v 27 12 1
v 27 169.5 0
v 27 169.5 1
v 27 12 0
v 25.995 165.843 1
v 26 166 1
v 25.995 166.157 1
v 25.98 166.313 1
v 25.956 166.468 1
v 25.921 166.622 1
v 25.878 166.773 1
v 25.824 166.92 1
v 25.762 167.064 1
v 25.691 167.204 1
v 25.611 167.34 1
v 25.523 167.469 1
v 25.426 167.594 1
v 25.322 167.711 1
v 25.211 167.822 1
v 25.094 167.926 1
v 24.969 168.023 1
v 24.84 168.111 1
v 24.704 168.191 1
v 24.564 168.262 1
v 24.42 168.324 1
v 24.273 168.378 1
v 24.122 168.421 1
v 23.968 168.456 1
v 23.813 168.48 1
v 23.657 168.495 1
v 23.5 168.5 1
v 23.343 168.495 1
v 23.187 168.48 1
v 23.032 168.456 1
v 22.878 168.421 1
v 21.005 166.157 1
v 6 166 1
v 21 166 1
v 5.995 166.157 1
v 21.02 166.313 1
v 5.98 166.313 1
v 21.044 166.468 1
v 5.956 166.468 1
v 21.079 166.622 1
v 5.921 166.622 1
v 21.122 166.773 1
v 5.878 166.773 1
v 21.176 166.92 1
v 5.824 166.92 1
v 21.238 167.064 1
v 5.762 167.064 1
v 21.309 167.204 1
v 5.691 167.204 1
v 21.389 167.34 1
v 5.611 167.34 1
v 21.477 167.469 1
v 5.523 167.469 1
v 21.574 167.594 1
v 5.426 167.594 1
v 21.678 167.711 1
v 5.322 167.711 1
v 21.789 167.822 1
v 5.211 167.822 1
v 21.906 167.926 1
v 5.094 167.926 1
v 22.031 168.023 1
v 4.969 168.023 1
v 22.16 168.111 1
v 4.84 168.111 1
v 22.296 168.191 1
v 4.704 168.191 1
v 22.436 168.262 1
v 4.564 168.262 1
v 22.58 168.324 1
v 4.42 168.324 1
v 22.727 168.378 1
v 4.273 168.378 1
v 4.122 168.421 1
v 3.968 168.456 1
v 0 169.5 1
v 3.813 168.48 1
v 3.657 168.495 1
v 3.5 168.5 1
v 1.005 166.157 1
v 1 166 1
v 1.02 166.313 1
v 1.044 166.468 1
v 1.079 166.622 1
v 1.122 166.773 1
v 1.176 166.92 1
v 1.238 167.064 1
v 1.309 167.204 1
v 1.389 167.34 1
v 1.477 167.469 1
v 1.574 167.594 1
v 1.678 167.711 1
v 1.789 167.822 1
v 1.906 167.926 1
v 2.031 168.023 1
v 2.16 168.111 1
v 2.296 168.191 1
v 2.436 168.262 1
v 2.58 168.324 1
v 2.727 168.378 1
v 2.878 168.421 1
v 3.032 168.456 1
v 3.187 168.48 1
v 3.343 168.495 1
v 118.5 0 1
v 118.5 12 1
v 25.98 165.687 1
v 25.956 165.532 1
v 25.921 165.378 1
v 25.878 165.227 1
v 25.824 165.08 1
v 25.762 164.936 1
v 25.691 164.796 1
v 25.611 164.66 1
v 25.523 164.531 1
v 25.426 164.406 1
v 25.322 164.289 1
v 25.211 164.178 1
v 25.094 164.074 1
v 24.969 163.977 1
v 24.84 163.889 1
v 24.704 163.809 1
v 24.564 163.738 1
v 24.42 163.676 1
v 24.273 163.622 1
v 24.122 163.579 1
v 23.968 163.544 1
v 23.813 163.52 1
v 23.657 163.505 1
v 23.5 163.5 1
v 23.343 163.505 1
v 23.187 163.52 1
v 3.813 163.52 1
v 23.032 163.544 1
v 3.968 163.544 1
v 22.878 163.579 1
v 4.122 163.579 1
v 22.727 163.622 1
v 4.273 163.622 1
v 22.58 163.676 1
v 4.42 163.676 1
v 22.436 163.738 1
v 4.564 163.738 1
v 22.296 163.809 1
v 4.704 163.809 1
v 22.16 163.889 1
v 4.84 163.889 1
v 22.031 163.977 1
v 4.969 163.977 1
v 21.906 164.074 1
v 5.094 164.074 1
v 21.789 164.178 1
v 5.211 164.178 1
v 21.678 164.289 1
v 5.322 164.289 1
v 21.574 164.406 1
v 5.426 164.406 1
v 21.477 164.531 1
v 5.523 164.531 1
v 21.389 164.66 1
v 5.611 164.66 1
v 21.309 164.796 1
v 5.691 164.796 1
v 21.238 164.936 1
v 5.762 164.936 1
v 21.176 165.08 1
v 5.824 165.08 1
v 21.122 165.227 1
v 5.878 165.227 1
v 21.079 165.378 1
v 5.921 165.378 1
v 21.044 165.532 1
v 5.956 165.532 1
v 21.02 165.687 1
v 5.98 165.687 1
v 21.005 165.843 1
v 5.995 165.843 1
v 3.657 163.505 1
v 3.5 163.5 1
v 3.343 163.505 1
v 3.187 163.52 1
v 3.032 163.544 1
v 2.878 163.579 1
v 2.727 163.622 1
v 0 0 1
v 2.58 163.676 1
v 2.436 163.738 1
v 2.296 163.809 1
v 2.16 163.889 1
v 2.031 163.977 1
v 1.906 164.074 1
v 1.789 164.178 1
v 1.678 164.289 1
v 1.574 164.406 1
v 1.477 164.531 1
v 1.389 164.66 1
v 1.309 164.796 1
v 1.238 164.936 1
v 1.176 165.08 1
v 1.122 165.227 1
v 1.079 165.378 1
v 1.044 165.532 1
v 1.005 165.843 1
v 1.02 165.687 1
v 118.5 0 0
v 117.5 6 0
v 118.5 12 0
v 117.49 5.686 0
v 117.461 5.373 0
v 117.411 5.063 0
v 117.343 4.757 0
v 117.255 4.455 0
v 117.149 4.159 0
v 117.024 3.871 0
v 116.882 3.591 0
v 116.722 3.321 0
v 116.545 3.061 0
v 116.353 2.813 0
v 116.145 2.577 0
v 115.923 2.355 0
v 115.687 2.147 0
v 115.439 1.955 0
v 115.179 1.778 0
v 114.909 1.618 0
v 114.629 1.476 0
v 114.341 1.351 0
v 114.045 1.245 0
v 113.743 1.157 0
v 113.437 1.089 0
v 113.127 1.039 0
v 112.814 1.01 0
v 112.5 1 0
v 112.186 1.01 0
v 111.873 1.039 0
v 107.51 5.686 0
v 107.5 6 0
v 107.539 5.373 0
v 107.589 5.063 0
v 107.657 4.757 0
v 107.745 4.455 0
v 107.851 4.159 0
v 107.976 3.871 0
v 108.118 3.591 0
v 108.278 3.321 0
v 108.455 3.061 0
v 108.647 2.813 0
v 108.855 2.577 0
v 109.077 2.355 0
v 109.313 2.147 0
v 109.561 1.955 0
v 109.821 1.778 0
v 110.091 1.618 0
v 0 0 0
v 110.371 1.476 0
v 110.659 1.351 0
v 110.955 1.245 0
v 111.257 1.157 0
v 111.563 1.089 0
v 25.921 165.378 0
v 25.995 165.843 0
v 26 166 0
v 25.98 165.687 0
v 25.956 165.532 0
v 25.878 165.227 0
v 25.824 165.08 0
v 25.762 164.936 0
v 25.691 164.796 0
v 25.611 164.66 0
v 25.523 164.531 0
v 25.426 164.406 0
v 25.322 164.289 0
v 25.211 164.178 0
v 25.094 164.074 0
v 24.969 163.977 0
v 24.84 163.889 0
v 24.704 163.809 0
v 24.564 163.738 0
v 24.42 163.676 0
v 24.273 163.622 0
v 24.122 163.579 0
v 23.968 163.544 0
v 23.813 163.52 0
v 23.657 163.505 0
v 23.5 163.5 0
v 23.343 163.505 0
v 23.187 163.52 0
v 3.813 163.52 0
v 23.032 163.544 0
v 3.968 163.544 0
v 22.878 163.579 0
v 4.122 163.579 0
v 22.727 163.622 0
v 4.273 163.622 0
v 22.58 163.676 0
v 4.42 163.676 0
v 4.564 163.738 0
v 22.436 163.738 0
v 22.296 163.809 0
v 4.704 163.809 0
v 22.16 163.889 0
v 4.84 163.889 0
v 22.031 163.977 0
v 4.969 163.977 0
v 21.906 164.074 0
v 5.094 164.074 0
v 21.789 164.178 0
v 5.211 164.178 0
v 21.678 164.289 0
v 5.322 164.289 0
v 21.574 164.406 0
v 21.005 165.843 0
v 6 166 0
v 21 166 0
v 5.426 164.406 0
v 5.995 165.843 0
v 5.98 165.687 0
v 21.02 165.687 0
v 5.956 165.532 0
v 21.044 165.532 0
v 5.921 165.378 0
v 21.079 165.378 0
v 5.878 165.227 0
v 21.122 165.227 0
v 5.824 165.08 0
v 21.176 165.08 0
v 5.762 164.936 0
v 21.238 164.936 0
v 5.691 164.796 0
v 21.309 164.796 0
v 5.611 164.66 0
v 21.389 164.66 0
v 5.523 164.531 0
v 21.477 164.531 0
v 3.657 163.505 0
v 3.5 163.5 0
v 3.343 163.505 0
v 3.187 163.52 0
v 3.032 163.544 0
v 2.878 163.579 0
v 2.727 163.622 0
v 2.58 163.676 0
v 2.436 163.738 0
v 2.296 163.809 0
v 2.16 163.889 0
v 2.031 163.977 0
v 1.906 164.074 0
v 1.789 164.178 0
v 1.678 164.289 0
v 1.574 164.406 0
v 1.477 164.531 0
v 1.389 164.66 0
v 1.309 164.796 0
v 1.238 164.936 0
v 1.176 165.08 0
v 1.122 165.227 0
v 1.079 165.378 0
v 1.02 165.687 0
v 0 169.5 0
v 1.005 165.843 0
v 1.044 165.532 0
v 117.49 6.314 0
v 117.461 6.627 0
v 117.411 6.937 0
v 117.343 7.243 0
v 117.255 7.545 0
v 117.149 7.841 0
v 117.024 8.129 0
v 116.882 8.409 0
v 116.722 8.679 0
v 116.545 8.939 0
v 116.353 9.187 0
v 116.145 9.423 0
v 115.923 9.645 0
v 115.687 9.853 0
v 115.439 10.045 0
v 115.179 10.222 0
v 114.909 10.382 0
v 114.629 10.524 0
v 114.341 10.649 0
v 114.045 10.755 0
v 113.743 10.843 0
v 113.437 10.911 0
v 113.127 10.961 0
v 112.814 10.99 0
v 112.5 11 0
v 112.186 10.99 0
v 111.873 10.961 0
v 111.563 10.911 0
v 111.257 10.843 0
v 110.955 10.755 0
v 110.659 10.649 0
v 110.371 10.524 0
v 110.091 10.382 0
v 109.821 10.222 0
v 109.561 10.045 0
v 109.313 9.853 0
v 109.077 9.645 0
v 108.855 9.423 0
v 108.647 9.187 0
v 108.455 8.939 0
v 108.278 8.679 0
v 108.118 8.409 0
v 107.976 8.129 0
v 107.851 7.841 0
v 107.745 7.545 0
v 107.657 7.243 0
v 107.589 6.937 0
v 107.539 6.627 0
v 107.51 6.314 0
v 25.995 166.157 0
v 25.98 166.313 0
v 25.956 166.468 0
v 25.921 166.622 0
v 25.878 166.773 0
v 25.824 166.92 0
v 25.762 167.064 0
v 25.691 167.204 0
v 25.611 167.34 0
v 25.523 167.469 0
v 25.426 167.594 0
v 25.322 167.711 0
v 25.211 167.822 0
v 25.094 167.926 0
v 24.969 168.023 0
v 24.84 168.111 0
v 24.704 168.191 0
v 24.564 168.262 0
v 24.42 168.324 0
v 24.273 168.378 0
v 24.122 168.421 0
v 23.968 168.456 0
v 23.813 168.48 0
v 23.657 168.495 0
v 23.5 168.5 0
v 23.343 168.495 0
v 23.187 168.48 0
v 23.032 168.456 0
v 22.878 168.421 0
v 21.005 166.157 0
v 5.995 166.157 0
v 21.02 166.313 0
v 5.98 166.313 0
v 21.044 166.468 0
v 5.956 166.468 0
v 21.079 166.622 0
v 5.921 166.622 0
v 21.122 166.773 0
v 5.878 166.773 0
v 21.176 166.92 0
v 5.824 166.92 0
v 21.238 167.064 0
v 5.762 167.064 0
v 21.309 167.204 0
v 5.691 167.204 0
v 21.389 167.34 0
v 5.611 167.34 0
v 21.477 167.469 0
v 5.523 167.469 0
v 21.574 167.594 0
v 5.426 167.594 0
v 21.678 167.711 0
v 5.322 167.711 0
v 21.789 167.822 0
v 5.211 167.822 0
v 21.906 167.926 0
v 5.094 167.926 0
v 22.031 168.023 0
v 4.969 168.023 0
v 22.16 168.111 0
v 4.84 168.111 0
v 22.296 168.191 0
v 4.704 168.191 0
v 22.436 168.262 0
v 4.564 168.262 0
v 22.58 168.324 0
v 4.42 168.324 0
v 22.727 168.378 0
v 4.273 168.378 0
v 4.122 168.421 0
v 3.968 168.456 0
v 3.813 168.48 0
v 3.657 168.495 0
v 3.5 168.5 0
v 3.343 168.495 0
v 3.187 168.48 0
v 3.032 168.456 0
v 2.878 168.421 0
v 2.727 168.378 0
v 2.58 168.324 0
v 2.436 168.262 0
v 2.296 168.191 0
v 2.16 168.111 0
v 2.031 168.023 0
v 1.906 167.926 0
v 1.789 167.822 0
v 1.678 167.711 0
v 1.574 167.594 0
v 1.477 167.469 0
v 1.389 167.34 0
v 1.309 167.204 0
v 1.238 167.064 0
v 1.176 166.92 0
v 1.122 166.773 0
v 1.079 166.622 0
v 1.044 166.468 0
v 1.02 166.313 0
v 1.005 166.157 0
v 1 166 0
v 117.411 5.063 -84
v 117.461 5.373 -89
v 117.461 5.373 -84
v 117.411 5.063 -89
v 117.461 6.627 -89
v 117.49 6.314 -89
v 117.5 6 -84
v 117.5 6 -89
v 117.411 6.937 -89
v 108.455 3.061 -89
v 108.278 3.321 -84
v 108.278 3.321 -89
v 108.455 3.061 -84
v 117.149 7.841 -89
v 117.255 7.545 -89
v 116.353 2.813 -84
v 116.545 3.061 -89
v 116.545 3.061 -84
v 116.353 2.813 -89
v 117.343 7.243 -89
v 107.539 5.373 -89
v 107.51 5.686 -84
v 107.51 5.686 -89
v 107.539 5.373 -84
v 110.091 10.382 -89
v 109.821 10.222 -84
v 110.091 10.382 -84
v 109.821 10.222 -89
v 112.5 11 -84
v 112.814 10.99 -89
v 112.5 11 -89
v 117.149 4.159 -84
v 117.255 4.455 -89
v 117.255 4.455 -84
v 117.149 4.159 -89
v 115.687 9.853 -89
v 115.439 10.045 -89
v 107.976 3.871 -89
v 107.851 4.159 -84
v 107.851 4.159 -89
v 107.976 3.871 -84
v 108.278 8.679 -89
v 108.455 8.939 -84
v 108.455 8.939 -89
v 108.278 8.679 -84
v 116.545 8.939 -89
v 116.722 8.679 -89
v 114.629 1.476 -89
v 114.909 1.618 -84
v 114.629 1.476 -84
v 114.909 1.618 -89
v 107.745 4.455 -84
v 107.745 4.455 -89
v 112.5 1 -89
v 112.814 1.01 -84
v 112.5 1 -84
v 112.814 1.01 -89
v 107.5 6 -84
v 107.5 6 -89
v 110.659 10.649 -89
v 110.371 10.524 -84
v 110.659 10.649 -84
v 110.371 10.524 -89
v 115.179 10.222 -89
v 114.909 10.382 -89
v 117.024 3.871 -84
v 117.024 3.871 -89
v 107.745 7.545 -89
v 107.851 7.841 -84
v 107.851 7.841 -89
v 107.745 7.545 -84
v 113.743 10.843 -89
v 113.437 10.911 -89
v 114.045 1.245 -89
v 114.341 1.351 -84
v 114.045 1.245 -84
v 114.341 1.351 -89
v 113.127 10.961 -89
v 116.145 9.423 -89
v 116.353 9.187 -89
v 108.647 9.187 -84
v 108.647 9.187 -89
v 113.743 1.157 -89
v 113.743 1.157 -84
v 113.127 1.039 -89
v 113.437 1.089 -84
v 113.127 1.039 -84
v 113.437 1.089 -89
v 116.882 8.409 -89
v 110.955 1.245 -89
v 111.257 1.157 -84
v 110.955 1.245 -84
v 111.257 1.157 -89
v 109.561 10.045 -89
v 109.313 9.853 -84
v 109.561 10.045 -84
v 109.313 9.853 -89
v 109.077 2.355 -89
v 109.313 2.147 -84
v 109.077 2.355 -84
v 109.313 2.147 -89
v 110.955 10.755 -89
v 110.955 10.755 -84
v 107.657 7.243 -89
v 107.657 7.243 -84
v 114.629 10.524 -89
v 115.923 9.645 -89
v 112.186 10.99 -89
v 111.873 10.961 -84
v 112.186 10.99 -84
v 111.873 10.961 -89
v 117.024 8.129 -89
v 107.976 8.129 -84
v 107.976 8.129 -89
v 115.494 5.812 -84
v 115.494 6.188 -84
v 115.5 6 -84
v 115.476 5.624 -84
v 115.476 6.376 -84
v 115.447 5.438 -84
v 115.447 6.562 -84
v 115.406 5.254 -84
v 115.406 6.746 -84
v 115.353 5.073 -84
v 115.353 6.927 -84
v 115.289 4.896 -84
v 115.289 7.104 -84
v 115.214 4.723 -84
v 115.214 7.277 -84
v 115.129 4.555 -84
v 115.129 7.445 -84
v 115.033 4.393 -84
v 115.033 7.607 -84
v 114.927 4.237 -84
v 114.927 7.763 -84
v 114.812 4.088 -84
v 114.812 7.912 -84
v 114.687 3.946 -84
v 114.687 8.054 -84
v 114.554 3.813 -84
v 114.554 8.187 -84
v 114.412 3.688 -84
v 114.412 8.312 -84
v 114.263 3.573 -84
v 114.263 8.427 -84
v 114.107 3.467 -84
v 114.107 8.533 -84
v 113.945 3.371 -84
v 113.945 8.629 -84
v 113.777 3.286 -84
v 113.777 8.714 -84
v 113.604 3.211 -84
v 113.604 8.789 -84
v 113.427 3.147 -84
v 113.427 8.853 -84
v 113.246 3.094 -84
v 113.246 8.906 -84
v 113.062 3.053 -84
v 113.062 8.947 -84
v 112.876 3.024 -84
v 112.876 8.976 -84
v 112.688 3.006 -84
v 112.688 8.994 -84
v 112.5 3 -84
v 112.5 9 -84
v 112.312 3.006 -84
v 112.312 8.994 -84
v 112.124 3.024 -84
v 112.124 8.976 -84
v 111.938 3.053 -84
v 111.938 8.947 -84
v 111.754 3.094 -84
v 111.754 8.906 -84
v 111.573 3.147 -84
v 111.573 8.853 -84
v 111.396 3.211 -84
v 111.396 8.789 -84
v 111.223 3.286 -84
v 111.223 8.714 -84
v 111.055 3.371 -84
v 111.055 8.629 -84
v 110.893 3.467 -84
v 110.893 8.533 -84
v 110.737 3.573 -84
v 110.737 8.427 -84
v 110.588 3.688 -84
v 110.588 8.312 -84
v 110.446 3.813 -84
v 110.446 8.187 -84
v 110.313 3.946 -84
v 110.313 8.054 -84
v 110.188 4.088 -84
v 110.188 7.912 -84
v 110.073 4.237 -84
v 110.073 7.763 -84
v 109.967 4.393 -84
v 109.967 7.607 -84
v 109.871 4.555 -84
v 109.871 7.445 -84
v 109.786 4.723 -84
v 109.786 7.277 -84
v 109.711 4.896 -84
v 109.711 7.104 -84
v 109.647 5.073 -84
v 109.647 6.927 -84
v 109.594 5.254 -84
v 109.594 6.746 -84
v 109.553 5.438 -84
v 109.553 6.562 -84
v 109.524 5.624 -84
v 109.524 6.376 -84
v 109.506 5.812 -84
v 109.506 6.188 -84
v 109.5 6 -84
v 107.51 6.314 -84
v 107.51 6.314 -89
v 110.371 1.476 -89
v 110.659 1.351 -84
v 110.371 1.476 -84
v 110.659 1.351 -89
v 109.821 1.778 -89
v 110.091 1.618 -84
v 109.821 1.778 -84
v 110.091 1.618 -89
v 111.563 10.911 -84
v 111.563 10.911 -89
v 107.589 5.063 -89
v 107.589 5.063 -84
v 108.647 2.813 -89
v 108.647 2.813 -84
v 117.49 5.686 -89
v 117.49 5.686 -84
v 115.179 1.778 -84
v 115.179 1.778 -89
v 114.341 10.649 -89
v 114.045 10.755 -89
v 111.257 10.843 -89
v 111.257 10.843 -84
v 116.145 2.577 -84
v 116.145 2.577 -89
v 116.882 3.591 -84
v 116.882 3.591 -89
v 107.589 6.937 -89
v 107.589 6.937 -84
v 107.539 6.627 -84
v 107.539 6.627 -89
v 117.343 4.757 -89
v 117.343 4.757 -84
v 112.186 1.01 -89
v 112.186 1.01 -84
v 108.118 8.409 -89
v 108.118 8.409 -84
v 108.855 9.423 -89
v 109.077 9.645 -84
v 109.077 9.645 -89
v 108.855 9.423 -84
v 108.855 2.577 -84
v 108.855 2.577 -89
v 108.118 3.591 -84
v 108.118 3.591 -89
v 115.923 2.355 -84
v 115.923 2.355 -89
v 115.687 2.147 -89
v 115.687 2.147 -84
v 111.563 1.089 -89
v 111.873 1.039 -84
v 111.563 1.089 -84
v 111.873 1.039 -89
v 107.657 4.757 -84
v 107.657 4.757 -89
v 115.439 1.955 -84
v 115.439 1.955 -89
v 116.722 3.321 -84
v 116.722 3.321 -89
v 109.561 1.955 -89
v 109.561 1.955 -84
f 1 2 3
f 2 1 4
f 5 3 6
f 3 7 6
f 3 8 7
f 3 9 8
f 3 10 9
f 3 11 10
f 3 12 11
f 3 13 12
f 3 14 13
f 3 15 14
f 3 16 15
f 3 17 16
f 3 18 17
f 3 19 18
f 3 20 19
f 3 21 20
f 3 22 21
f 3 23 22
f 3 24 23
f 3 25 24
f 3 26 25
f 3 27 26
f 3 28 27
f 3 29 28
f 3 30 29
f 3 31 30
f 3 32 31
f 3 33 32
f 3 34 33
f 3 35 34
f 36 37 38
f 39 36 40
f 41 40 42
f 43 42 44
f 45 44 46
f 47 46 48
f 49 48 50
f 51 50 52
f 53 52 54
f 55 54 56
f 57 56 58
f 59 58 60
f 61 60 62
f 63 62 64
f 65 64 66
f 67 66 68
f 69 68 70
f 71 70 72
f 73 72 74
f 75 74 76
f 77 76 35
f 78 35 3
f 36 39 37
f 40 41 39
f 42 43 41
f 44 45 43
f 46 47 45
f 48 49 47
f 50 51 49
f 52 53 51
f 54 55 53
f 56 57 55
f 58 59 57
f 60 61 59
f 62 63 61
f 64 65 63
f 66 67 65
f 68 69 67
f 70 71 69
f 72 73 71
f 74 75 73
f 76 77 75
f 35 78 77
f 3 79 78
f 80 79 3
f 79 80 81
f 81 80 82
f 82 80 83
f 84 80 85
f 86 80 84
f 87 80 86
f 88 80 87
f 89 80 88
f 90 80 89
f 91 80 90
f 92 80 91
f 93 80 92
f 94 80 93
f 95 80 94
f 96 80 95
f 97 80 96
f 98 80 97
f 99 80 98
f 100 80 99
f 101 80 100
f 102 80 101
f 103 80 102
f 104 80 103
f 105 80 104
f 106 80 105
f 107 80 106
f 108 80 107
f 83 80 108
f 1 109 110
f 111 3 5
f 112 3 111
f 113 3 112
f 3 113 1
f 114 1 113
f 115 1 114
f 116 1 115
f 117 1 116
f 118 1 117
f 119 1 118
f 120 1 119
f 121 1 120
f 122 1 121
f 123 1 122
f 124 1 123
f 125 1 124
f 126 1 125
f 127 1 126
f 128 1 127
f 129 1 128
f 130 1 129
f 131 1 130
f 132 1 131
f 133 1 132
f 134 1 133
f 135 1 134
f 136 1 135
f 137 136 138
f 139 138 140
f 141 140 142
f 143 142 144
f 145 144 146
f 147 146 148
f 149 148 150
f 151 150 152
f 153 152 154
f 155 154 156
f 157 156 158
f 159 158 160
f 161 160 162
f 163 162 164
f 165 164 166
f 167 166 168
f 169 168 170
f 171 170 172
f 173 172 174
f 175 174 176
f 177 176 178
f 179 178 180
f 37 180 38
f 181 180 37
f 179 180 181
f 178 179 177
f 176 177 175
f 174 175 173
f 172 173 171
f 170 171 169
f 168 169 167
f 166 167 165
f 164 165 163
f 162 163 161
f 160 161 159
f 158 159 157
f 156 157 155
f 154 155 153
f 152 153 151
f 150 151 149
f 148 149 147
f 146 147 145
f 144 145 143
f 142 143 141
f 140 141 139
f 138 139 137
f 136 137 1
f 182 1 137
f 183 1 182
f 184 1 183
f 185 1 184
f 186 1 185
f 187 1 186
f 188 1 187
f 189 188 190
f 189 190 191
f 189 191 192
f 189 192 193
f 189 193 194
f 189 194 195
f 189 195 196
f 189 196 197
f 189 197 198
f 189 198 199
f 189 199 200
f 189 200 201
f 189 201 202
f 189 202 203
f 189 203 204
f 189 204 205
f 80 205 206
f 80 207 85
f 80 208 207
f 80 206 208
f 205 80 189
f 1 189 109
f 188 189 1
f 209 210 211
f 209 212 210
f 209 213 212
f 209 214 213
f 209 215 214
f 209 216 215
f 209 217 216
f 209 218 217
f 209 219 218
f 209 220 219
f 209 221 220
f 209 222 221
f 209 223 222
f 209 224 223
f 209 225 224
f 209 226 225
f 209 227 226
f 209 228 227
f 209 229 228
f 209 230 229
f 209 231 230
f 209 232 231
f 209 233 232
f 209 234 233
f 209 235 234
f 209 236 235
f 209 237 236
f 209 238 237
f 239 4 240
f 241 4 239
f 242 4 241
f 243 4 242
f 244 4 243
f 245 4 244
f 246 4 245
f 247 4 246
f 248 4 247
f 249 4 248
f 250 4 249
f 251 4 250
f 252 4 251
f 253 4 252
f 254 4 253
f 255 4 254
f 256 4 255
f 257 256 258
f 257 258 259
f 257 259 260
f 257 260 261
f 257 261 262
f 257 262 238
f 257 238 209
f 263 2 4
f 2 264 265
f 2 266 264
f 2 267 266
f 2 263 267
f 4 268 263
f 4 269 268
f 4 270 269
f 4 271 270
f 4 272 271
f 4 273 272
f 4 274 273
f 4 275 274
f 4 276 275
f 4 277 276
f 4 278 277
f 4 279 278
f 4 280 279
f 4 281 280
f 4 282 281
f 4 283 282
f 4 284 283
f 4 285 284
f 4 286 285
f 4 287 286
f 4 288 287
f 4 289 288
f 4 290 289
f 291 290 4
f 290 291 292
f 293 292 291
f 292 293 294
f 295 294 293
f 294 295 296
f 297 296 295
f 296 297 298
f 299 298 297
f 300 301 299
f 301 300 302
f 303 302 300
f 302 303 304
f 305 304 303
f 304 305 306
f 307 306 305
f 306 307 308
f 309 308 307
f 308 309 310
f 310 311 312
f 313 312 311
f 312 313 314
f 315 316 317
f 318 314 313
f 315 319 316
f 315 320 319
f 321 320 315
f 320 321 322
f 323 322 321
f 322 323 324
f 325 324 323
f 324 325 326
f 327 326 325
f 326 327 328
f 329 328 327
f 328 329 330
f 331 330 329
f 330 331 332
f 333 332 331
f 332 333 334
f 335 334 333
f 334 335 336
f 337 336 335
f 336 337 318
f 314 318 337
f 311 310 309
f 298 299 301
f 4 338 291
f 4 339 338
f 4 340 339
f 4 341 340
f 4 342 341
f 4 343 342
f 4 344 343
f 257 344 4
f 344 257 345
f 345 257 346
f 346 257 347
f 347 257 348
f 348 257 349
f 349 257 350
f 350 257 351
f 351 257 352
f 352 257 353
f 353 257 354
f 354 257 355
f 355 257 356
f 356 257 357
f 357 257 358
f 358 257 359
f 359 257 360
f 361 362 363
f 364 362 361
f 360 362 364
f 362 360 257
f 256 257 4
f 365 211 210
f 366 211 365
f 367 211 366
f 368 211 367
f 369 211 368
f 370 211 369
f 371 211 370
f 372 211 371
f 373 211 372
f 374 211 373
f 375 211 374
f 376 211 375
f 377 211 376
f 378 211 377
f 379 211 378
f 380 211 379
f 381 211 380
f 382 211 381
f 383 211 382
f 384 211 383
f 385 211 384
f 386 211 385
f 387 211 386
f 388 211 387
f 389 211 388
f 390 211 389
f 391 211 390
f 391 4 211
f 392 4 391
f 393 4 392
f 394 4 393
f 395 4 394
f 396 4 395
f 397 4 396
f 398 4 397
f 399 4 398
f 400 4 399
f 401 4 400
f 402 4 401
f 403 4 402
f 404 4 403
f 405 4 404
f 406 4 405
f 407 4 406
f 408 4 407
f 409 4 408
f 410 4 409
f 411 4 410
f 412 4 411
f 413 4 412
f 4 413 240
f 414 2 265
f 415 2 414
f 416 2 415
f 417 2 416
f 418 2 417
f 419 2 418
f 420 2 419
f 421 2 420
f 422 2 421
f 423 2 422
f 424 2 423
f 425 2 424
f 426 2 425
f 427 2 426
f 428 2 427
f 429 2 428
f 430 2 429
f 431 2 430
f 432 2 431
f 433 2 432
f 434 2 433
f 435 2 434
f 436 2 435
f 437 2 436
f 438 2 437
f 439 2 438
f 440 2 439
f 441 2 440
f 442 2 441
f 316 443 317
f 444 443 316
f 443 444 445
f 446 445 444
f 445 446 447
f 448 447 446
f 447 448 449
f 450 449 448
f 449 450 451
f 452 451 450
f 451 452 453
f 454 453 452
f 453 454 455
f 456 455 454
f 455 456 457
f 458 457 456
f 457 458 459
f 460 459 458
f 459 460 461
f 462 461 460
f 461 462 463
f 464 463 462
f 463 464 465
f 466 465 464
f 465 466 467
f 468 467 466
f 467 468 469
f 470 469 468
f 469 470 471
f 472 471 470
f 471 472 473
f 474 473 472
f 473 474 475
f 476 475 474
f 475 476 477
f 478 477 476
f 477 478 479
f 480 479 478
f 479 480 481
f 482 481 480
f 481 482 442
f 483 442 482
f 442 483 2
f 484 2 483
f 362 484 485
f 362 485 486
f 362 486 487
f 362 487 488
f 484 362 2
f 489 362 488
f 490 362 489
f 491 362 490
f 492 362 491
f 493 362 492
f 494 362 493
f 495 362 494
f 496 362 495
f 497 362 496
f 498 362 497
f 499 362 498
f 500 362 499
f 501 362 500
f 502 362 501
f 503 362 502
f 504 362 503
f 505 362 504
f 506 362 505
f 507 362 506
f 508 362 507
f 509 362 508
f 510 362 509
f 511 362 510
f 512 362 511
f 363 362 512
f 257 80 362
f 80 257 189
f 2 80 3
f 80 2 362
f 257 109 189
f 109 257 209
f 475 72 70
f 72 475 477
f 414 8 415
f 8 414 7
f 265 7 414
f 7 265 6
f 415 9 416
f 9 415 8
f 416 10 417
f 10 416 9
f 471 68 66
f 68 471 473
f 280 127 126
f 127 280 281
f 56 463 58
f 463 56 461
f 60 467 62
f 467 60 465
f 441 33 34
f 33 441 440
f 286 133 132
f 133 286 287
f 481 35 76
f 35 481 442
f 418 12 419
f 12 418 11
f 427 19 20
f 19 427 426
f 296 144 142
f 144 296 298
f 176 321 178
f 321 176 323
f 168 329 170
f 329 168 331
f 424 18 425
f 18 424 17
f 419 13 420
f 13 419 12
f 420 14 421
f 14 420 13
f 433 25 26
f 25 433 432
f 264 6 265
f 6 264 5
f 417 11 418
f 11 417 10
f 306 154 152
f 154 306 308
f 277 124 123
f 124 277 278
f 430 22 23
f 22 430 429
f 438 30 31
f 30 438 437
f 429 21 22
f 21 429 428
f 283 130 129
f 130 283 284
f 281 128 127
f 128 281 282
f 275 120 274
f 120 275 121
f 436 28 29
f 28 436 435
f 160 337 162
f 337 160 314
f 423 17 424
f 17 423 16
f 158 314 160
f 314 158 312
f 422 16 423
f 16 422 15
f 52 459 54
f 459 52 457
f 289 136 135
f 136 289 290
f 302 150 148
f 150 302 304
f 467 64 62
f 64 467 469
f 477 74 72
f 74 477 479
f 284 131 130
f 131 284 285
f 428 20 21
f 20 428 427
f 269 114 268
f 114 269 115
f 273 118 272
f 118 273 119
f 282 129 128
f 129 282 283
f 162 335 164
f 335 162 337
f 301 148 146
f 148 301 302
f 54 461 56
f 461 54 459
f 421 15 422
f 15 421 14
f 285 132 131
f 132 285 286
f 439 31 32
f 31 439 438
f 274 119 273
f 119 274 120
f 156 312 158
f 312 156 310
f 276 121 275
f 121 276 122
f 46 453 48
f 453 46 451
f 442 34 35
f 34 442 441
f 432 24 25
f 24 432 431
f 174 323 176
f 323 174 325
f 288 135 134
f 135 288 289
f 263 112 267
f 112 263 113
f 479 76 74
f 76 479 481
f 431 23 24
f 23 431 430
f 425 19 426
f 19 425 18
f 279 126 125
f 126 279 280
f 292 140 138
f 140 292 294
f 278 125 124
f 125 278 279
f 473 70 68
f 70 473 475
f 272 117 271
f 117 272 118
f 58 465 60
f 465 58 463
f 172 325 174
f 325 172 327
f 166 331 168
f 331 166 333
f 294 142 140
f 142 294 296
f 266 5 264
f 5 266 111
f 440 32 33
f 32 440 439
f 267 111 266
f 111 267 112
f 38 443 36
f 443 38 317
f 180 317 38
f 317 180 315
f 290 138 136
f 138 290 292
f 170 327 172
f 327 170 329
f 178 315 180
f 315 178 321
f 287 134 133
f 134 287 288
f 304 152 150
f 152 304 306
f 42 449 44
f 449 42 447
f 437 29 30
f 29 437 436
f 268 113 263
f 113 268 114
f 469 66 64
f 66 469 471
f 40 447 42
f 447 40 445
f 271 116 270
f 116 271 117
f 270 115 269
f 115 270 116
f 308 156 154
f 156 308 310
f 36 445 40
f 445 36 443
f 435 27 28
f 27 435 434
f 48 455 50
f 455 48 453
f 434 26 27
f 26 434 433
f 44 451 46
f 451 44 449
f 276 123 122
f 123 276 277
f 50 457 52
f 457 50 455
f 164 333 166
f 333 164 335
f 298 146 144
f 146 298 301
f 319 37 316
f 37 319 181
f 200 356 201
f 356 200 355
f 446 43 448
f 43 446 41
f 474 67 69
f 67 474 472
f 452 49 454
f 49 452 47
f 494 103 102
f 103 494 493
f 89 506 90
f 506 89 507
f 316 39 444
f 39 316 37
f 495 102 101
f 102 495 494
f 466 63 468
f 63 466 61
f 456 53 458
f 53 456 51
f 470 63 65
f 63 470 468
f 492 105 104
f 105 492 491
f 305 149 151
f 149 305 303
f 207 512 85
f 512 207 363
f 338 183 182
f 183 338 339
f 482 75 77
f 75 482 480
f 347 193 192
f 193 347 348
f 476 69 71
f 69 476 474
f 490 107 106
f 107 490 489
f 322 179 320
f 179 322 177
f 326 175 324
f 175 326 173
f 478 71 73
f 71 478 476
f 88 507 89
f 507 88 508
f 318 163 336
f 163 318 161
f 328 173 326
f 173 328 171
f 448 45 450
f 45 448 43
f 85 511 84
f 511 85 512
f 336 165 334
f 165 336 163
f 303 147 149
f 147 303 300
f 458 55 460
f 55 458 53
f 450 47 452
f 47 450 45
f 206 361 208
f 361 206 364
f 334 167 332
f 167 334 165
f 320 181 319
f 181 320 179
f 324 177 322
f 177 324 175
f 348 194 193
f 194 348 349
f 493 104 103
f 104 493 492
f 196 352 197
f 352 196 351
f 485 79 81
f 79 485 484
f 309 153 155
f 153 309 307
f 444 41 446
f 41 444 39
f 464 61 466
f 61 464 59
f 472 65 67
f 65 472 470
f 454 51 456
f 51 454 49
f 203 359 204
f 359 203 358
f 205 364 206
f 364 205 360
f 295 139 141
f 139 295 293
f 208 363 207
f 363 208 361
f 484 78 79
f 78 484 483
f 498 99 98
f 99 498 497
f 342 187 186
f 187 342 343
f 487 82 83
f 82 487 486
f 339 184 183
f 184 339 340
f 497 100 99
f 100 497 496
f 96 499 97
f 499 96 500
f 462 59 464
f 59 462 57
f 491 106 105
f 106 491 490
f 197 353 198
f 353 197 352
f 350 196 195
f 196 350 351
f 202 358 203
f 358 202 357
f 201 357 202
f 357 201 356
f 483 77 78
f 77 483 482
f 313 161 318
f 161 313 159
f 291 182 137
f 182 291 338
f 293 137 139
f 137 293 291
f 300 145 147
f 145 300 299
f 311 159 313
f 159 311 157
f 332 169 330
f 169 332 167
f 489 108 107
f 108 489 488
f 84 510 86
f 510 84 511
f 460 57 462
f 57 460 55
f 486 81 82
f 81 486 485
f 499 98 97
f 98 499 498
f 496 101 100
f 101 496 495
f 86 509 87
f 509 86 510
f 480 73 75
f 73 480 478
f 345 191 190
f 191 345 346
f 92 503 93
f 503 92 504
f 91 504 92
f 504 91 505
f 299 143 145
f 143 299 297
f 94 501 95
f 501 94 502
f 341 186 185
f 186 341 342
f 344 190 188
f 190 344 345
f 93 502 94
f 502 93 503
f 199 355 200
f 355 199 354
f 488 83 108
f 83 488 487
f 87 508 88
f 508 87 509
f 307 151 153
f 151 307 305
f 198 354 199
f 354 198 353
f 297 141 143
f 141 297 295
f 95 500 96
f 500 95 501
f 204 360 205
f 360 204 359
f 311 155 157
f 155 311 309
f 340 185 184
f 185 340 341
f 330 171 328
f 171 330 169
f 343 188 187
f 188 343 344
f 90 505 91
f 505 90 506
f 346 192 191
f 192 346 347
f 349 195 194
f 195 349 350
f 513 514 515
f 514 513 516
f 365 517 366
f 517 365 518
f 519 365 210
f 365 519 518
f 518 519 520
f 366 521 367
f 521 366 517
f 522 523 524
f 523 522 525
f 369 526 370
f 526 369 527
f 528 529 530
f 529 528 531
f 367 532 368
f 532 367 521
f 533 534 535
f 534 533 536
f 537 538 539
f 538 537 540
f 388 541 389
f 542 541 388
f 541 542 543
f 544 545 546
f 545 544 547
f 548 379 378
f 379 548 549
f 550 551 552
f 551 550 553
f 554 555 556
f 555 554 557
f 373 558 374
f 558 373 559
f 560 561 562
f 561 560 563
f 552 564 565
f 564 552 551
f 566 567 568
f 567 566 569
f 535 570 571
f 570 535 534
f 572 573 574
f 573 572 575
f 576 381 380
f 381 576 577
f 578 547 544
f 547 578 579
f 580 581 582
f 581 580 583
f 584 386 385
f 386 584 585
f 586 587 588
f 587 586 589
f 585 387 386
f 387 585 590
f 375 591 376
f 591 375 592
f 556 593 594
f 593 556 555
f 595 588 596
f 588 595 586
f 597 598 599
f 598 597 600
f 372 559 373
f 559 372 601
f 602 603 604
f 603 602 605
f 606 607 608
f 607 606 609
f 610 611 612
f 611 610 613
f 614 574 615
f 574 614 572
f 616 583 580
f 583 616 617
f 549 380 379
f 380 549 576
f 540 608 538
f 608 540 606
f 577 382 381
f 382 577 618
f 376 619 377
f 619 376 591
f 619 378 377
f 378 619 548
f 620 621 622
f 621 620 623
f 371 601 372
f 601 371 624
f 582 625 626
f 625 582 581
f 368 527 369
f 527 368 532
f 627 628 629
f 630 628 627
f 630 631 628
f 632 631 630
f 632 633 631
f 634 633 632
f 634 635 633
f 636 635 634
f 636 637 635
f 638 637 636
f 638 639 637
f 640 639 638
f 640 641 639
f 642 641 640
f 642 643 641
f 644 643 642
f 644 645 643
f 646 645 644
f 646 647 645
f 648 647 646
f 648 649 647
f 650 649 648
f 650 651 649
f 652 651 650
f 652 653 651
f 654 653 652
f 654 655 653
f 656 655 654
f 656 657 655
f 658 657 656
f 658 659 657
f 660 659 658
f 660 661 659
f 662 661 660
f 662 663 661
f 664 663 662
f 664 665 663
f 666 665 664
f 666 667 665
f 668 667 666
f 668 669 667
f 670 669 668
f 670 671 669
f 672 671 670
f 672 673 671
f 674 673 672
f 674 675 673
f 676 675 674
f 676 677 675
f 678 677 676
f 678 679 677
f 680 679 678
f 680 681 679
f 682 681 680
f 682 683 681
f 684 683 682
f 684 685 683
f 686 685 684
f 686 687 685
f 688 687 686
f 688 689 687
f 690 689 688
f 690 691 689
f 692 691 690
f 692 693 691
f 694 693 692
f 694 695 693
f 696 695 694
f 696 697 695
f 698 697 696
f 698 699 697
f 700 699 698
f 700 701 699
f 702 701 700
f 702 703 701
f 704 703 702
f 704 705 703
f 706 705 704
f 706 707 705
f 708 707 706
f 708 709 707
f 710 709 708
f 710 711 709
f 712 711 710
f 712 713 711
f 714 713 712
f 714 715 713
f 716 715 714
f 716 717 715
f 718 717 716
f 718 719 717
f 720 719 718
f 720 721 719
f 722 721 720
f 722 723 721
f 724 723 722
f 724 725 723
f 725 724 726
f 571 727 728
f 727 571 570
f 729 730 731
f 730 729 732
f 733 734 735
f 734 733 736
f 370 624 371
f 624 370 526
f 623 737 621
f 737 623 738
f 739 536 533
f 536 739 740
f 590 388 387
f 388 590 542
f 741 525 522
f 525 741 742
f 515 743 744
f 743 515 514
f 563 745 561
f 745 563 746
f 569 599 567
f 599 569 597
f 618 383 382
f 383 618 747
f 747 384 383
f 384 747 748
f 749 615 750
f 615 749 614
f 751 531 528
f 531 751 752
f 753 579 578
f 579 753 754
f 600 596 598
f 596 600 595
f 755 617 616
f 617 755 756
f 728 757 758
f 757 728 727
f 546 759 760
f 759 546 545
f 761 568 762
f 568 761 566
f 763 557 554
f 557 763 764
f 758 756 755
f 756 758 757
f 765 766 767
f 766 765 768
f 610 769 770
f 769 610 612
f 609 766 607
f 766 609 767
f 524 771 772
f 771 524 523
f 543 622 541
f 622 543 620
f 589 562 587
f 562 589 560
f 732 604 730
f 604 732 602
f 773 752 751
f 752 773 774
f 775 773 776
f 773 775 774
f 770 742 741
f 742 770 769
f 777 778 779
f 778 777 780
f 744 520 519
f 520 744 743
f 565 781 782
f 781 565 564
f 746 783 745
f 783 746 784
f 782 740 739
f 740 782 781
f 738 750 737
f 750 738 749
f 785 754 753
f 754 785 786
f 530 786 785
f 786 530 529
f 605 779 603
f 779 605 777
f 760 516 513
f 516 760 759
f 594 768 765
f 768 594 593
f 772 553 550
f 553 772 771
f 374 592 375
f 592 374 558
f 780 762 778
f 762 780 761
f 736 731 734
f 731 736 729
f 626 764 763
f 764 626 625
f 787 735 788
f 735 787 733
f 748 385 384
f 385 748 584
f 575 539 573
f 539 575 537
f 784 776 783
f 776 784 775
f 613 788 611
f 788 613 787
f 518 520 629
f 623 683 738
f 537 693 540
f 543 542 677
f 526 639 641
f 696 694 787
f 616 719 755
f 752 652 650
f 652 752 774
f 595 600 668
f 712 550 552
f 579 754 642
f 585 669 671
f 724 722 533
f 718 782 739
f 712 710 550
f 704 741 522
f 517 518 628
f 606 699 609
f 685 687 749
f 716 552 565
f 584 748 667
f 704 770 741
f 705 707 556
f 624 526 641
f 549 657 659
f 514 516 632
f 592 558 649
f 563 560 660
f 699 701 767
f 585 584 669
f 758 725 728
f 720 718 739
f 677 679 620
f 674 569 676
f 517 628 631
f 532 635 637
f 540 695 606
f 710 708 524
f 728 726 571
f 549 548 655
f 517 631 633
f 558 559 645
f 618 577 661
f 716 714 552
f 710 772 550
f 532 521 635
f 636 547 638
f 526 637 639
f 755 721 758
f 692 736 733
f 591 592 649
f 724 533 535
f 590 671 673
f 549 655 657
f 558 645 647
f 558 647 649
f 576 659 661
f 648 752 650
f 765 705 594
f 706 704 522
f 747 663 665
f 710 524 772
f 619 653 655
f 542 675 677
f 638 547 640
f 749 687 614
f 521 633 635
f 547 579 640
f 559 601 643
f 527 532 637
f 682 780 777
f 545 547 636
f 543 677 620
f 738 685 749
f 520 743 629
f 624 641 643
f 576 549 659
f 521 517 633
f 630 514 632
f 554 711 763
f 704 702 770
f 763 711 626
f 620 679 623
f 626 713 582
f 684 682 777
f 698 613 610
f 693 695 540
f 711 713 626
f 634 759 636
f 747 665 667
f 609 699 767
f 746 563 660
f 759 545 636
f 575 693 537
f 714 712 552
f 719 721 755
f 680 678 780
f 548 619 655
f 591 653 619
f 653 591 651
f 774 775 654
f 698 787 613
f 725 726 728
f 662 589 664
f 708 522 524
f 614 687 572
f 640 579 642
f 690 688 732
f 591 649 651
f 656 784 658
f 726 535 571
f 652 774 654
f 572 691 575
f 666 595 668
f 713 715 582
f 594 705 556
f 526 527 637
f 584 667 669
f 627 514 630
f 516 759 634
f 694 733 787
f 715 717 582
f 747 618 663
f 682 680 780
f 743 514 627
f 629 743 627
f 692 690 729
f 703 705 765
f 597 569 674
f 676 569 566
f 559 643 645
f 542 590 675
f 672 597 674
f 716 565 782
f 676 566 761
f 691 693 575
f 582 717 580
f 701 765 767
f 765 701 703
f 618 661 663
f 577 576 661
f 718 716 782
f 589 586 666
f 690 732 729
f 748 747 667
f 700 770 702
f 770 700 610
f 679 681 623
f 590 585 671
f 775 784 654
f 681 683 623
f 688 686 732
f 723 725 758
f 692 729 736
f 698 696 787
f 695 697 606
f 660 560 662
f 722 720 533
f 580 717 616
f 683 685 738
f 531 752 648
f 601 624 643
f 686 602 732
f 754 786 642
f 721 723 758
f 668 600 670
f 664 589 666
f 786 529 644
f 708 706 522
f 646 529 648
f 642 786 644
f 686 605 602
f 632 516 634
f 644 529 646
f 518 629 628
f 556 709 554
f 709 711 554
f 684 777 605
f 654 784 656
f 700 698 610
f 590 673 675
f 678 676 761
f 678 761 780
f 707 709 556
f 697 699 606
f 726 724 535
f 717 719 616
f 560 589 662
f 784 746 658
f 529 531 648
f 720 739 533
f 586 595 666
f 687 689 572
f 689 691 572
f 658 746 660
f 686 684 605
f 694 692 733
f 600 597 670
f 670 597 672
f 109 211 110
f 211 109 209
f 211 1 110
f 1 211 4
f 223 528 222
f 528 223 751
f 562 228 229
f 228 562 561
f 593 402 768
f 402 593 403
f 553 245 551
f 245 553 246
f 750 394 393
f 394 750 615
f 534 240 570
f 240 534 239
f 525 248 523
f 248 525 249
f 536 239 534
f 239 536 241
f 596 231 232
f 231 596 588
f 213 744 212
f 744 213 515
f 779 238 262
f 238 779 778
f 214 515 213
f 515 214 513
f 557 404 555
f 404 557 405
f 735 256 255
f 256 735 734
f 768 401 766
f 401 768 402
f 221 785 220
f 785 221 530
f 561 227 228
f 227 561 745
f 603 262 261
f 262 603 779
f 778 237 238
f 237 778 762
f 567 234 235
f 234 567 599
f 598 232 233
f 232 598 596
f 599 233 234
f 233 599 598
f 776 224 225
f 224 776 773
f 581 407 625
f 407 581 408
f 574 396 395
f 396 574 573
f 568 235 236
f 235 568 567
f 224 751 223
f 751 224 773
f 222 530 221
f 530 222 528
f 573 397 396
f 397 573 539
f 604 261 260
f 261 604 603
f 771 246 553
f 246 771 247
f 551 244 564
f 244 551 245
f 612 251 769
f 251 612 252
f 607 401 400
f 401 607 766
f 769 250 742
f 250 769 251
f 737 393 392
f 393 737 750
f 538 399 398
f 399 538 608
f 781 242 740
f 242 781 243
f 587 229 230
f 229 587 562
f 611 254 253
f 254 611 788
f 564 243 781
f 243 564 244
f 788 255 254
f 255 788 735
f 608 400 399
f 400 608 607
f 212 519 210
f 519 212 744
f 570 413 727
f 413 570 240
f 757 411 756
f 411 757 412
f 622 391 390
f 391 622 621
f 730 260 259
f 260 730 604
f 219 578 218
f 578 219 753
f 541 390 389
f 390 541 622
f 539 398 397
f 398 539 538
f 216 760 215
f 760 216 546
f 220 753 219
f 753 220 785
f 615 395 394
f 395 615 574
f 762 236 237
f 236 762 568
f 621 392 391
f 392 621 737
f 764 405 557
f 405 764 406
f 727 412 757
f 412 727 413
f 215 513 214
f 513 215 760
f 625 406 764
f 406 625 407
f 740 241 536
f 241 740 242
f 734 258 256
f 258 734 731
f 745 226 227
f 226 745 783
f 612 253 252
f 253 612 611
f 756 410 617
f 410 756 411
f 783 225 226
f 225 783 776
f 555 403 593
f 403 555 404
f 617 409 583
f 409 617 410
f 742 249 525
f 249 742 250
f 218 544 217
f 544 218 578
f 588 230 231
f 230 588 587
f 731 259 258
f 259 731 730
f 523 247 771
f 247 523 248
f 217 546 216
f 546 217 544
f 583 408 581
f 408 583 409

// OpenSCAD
bolt_d = 5;
bolt_x = 20;
post_y = 160;
post_x = 89;
post_z = 84;
post_d = 10;
cup_d = 6;
cup_z = 5;
pad = 1;
thickness = 1;

x_0 = pad+bolt_d/2+bolt_x;
y_0 = post_y+post_d/2+pad;

$fn=100;

difference() {
  // Y-Body
  cube([bolt_x+bolt_d+2*pad, post_y+bolt_d/2+post_d/2+2*pad, thickness]);
 
  // Mounting holes
  translate([x_0, y_0, -0.1])
  cylinder(d=bolt_d, h=thickness+1);

  translate([x_0-bolt_x, y_0, -0.1])
  cylinder(d=bolt_d, h=thickness+1);
  
}

// X-Body
cube([post_x+bolt_x+post_d/2+bolt_d/2+2*pad, post_d+2*pad, thickness]);

// Post
translate([x_0+post_x, y_0-post_y, -post_z])
cylinder(d=post_d, h=post_z);

// Cup
translate([x_0+post_x, y_0-post_y, -post_z-cup_z])
difference() {
  cylinder(d=post_d, h=cup_z);
  cylinder(d2=cup_d, d1=post_d, h=cup_z);
}
